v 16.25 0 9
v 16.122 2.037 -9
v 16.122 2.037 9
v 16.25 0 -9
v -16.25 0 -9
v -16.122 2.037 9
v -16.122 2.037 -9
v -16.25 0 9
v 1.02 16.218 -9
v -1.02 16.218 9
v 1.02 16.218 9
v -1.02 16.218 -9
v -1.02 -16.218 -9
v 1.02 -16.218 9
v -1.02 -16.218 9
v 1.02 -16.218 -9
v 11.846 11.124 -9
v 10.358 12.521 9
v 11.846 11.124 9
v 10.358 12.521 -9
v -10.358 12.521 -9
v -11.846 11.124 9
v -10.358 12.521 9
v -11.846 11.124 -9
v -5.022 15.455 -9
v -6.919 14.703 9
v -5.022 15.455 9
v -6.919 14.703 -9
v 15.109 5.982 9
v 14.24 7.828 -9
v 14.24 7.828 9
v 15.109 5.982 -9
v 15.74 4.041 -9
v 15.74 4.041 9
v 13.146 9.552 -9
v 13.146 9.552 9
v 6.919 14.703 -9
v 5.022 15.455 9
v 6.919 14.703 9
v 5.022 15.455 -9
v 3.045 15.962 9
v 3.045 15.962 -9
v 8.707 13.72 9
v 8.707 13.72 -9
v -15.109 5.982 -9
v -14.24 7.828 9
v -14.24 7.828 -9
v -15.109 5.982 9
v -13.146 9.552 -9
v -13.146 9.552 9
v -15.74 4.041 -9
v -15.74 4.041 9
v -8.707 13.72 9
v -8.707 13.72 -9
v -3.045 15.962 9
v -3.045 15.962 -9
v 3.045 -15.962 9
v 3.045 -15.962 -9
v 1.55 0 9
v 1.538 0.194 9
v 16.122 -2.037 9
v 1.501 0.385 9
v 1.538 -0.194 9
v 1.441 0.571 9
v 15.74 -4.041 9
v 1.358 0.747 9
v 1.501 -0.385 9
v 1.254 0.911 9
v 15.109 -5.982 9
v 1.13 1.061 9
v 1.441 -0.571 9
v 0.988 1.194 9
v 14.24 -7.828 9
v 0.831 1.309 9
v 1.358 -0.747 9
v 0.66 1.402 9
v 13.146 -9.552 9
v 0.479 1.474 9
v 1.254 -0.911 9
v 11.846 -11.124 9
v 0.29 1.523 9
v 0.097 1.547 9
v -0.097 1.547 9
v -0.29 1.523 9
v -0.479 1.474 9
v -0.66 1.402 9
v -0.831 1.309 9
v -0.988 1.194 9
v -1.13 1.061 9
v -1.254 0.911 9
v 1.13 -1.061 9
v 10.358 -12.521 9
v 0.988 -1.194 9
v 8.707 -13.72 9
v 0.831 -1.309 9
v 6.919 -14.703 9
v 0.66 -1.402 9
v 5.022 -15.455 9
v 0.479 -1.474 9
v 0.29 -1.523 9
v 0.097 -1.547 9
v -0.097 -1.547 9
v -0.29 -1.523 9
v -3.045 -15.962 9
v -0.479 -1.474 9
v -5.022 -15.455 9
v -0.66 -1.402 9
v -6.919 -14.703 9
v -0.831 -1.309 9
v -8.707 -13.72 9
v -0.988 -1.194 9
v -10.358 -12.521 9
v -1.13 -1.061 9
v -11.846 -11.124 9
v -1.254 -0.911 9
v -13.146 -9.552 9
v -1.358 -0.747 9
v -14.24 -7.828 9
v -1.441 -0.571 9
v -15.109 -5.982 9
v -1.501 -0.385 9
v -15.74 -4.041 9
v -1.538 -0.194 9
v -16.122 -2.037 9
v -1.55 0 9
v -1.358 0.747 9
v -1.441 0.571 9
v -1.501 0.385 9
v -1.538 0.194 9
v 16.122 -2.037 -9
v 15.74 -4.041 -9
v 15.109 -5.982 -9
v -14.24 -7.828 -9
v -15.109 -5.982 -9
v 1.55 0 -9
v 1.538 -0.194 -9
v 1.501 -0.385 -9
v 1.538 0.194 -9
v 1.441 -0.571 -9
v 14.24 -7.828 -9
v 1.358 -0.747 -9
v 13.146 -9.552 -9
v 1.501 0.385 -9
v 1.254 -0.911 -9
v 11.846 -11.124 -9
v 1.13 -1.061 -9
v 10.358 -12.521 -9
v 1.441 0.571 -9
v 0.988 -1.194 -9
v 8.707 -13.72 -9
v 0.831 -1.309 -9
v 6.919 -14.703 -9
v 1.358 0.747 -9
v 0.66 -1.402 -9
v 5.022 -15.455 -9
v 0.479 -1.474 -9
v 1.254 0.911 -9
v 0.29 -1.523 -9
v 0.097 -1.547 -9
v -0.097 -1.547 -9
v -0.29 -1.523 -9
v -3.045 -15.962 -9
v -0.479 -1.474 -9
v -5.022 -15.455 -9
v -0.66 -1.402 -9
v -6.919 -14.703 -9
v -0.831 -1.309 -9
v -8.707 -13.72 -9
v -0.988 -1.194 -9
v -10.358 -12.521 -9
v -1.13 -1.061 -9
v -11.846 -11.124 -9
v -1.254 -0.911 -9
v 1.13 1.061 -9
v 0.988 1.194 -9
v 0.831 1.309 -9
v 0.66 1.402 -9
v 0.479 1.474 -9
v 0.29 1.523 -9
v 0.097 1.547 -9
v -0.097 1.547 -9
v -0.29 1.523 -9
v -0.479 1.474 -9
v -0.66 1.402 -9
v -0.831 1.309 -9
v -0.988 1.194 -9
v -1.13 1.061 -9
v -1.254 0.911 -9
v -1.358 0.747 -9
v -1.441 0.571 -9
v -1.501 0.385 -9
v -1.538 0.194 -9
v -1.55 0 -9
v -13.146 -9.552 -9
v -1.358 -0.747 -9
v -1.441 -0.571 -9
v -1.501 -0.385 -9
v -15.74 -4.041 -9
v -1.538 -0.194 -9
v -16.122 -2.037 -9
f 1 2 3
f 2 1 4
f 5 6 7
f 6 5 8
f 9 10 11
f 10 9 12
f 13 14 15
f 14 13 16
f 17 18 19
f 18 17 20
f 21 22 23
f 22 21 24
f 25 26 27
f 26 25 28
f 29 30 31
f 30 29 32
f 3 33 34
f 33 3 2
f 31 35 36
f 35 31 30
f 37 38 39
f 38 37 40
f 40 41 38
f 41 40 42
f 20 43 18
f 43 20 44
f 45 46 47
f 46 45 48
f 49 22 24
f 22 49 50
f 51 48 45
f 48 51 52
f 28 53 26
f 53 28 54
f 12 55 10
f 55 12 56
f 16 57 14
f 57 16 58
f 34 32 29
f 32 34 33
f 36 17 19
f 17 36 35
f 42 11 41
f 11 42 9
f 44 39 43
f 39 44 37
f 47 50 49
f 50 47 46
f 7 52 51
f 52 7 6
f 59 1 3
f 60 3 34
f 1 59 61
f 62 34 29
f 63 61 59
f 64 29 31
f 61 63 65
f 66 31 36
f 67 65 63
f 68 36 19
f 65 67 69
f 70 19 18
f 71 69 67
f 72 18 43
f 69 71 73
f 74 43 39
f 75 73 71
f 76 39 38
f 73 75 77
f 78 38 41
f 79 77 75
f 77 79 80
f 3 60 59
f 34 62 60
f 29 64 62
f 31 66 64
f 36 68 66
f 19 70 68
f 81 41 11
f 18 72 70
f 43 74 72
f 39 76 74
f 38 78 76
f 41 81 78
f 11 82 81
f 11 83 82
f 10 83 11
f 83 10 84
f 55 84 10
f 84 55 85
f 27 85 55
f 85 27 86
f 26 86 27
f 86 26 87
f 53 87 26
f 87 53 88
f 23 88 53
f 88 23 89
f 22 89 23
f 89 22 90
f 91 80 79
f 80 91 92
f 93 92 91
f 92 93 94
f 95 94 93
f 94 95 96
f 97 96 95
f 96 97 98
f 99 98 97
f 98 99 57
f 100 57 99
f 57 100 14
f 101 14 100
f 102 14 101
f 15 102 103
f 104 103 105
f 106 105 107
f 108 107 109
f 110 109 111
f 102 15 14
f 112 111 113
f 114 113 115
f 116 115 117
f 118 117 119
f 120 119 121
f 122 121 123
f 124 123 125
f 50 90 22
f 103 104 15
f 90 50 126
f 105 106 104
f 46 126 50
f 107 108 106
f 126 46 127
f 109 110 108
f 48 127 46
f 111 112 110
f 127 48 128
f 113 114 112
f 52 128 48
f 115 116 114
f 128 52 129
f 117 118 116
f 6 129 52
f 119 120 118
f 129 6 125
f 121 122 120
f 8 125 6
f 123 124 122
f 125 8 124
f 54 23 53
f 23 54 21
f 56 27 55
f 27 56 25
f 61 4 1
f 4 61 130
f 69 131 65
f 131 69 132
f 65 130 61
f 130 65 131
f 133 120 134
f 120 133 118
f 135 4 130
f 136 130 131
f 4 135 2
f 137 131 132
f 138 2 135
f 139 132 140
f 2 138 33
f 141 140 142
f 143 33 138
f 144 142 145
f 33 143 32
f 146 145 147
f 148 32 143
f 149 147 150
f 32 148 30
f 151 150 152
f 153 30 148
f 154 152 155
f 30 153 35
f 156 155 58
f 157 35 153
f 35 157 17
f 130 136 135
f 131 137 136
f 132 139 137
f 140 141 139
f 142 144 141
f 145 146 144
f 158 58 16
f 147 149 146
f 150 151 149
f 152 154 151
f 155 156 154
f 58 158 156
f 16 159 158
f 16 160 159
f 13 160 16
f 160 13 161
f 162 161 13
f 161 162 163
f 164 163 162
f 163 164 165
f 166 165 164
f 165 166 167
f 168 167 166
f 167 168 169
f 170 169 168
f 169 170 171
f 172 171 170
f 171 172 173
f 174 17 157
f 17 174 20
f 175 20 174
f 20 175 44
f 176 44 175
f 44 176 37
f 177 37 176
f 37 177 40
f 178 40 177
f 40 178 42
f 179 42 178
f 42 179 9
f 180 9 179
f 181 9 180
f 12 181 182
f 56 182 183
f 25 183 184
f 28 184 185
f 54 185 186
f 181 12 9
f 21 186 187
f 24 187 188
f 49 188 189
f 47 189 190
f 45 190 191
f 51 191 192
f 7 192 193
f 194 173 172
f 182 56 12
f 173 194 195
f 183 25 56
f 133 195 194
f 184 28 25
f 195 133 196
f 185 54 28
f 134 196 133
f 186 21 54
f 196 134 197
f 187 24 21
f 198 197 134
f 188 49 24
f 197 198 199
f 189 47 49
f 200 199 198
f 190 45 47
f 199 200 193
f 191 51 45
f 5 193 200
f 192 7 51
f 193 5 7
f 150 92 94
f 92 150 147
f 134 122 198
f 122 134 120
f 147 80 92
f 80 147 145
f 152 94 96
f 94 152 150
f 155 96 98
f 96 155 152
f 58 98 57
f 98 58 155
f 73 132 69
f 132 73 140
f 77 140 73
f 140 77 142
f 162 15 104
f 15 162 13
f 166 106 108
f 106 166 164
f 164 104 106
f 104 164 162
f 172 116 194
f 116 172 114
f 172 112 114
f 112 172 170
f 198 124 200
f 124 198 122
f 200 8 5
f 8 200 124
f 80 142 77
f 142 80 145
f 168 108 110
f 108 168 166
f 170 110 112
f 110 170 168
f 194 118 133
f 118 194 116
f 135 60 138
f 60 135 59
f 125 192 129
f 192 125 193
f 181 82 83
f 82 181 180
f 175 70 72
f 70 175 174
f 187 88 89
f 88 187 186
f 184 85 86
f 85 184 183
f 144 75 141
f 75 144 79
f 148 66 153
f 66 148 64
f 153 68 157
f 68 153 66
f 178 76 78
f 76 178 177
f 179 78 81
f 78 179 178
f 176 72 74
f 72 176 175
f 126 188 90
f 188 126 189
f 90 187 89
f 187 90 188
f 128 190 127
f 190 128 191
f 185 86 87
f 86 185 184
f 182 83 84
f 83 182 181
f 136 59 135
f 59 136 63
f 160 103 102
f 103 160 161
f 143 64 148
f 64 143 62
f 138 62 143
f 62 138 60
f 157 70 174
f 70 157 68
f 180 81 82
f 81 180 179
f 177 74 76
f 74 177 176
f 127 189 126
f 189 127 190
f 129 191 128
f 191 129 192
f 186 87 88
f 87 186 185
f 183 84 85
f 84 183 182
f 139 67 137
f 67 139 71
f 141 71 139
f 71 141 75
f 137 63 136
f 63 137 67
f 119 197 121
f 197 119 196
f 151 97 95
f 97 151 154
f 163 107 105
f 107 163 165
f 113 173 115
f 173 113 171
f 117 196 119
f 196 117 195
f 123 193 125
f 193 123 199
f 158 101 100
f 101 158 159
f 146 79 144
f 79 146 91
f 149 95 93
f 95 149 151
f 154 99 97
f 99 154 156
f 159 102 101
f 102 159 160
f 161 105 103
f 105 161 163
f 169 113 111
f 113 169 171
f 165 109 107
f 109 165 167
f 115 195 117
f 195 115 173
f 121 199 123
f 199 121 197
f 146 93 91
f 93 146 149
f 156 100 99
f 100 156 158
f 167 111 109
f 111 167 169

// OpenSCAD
$fn = 50;


difference() {
	union() {
		translate(v = [0, 0, -9.0000000000]) {
			cylinder(h = 18, r = 16.2500000000);
		}
	}
	union() {
		translate(v = [0, 0, -100.0000000000]) {
			cylinder(h = 200, r = 1.5500000000);
		}
	}
}
